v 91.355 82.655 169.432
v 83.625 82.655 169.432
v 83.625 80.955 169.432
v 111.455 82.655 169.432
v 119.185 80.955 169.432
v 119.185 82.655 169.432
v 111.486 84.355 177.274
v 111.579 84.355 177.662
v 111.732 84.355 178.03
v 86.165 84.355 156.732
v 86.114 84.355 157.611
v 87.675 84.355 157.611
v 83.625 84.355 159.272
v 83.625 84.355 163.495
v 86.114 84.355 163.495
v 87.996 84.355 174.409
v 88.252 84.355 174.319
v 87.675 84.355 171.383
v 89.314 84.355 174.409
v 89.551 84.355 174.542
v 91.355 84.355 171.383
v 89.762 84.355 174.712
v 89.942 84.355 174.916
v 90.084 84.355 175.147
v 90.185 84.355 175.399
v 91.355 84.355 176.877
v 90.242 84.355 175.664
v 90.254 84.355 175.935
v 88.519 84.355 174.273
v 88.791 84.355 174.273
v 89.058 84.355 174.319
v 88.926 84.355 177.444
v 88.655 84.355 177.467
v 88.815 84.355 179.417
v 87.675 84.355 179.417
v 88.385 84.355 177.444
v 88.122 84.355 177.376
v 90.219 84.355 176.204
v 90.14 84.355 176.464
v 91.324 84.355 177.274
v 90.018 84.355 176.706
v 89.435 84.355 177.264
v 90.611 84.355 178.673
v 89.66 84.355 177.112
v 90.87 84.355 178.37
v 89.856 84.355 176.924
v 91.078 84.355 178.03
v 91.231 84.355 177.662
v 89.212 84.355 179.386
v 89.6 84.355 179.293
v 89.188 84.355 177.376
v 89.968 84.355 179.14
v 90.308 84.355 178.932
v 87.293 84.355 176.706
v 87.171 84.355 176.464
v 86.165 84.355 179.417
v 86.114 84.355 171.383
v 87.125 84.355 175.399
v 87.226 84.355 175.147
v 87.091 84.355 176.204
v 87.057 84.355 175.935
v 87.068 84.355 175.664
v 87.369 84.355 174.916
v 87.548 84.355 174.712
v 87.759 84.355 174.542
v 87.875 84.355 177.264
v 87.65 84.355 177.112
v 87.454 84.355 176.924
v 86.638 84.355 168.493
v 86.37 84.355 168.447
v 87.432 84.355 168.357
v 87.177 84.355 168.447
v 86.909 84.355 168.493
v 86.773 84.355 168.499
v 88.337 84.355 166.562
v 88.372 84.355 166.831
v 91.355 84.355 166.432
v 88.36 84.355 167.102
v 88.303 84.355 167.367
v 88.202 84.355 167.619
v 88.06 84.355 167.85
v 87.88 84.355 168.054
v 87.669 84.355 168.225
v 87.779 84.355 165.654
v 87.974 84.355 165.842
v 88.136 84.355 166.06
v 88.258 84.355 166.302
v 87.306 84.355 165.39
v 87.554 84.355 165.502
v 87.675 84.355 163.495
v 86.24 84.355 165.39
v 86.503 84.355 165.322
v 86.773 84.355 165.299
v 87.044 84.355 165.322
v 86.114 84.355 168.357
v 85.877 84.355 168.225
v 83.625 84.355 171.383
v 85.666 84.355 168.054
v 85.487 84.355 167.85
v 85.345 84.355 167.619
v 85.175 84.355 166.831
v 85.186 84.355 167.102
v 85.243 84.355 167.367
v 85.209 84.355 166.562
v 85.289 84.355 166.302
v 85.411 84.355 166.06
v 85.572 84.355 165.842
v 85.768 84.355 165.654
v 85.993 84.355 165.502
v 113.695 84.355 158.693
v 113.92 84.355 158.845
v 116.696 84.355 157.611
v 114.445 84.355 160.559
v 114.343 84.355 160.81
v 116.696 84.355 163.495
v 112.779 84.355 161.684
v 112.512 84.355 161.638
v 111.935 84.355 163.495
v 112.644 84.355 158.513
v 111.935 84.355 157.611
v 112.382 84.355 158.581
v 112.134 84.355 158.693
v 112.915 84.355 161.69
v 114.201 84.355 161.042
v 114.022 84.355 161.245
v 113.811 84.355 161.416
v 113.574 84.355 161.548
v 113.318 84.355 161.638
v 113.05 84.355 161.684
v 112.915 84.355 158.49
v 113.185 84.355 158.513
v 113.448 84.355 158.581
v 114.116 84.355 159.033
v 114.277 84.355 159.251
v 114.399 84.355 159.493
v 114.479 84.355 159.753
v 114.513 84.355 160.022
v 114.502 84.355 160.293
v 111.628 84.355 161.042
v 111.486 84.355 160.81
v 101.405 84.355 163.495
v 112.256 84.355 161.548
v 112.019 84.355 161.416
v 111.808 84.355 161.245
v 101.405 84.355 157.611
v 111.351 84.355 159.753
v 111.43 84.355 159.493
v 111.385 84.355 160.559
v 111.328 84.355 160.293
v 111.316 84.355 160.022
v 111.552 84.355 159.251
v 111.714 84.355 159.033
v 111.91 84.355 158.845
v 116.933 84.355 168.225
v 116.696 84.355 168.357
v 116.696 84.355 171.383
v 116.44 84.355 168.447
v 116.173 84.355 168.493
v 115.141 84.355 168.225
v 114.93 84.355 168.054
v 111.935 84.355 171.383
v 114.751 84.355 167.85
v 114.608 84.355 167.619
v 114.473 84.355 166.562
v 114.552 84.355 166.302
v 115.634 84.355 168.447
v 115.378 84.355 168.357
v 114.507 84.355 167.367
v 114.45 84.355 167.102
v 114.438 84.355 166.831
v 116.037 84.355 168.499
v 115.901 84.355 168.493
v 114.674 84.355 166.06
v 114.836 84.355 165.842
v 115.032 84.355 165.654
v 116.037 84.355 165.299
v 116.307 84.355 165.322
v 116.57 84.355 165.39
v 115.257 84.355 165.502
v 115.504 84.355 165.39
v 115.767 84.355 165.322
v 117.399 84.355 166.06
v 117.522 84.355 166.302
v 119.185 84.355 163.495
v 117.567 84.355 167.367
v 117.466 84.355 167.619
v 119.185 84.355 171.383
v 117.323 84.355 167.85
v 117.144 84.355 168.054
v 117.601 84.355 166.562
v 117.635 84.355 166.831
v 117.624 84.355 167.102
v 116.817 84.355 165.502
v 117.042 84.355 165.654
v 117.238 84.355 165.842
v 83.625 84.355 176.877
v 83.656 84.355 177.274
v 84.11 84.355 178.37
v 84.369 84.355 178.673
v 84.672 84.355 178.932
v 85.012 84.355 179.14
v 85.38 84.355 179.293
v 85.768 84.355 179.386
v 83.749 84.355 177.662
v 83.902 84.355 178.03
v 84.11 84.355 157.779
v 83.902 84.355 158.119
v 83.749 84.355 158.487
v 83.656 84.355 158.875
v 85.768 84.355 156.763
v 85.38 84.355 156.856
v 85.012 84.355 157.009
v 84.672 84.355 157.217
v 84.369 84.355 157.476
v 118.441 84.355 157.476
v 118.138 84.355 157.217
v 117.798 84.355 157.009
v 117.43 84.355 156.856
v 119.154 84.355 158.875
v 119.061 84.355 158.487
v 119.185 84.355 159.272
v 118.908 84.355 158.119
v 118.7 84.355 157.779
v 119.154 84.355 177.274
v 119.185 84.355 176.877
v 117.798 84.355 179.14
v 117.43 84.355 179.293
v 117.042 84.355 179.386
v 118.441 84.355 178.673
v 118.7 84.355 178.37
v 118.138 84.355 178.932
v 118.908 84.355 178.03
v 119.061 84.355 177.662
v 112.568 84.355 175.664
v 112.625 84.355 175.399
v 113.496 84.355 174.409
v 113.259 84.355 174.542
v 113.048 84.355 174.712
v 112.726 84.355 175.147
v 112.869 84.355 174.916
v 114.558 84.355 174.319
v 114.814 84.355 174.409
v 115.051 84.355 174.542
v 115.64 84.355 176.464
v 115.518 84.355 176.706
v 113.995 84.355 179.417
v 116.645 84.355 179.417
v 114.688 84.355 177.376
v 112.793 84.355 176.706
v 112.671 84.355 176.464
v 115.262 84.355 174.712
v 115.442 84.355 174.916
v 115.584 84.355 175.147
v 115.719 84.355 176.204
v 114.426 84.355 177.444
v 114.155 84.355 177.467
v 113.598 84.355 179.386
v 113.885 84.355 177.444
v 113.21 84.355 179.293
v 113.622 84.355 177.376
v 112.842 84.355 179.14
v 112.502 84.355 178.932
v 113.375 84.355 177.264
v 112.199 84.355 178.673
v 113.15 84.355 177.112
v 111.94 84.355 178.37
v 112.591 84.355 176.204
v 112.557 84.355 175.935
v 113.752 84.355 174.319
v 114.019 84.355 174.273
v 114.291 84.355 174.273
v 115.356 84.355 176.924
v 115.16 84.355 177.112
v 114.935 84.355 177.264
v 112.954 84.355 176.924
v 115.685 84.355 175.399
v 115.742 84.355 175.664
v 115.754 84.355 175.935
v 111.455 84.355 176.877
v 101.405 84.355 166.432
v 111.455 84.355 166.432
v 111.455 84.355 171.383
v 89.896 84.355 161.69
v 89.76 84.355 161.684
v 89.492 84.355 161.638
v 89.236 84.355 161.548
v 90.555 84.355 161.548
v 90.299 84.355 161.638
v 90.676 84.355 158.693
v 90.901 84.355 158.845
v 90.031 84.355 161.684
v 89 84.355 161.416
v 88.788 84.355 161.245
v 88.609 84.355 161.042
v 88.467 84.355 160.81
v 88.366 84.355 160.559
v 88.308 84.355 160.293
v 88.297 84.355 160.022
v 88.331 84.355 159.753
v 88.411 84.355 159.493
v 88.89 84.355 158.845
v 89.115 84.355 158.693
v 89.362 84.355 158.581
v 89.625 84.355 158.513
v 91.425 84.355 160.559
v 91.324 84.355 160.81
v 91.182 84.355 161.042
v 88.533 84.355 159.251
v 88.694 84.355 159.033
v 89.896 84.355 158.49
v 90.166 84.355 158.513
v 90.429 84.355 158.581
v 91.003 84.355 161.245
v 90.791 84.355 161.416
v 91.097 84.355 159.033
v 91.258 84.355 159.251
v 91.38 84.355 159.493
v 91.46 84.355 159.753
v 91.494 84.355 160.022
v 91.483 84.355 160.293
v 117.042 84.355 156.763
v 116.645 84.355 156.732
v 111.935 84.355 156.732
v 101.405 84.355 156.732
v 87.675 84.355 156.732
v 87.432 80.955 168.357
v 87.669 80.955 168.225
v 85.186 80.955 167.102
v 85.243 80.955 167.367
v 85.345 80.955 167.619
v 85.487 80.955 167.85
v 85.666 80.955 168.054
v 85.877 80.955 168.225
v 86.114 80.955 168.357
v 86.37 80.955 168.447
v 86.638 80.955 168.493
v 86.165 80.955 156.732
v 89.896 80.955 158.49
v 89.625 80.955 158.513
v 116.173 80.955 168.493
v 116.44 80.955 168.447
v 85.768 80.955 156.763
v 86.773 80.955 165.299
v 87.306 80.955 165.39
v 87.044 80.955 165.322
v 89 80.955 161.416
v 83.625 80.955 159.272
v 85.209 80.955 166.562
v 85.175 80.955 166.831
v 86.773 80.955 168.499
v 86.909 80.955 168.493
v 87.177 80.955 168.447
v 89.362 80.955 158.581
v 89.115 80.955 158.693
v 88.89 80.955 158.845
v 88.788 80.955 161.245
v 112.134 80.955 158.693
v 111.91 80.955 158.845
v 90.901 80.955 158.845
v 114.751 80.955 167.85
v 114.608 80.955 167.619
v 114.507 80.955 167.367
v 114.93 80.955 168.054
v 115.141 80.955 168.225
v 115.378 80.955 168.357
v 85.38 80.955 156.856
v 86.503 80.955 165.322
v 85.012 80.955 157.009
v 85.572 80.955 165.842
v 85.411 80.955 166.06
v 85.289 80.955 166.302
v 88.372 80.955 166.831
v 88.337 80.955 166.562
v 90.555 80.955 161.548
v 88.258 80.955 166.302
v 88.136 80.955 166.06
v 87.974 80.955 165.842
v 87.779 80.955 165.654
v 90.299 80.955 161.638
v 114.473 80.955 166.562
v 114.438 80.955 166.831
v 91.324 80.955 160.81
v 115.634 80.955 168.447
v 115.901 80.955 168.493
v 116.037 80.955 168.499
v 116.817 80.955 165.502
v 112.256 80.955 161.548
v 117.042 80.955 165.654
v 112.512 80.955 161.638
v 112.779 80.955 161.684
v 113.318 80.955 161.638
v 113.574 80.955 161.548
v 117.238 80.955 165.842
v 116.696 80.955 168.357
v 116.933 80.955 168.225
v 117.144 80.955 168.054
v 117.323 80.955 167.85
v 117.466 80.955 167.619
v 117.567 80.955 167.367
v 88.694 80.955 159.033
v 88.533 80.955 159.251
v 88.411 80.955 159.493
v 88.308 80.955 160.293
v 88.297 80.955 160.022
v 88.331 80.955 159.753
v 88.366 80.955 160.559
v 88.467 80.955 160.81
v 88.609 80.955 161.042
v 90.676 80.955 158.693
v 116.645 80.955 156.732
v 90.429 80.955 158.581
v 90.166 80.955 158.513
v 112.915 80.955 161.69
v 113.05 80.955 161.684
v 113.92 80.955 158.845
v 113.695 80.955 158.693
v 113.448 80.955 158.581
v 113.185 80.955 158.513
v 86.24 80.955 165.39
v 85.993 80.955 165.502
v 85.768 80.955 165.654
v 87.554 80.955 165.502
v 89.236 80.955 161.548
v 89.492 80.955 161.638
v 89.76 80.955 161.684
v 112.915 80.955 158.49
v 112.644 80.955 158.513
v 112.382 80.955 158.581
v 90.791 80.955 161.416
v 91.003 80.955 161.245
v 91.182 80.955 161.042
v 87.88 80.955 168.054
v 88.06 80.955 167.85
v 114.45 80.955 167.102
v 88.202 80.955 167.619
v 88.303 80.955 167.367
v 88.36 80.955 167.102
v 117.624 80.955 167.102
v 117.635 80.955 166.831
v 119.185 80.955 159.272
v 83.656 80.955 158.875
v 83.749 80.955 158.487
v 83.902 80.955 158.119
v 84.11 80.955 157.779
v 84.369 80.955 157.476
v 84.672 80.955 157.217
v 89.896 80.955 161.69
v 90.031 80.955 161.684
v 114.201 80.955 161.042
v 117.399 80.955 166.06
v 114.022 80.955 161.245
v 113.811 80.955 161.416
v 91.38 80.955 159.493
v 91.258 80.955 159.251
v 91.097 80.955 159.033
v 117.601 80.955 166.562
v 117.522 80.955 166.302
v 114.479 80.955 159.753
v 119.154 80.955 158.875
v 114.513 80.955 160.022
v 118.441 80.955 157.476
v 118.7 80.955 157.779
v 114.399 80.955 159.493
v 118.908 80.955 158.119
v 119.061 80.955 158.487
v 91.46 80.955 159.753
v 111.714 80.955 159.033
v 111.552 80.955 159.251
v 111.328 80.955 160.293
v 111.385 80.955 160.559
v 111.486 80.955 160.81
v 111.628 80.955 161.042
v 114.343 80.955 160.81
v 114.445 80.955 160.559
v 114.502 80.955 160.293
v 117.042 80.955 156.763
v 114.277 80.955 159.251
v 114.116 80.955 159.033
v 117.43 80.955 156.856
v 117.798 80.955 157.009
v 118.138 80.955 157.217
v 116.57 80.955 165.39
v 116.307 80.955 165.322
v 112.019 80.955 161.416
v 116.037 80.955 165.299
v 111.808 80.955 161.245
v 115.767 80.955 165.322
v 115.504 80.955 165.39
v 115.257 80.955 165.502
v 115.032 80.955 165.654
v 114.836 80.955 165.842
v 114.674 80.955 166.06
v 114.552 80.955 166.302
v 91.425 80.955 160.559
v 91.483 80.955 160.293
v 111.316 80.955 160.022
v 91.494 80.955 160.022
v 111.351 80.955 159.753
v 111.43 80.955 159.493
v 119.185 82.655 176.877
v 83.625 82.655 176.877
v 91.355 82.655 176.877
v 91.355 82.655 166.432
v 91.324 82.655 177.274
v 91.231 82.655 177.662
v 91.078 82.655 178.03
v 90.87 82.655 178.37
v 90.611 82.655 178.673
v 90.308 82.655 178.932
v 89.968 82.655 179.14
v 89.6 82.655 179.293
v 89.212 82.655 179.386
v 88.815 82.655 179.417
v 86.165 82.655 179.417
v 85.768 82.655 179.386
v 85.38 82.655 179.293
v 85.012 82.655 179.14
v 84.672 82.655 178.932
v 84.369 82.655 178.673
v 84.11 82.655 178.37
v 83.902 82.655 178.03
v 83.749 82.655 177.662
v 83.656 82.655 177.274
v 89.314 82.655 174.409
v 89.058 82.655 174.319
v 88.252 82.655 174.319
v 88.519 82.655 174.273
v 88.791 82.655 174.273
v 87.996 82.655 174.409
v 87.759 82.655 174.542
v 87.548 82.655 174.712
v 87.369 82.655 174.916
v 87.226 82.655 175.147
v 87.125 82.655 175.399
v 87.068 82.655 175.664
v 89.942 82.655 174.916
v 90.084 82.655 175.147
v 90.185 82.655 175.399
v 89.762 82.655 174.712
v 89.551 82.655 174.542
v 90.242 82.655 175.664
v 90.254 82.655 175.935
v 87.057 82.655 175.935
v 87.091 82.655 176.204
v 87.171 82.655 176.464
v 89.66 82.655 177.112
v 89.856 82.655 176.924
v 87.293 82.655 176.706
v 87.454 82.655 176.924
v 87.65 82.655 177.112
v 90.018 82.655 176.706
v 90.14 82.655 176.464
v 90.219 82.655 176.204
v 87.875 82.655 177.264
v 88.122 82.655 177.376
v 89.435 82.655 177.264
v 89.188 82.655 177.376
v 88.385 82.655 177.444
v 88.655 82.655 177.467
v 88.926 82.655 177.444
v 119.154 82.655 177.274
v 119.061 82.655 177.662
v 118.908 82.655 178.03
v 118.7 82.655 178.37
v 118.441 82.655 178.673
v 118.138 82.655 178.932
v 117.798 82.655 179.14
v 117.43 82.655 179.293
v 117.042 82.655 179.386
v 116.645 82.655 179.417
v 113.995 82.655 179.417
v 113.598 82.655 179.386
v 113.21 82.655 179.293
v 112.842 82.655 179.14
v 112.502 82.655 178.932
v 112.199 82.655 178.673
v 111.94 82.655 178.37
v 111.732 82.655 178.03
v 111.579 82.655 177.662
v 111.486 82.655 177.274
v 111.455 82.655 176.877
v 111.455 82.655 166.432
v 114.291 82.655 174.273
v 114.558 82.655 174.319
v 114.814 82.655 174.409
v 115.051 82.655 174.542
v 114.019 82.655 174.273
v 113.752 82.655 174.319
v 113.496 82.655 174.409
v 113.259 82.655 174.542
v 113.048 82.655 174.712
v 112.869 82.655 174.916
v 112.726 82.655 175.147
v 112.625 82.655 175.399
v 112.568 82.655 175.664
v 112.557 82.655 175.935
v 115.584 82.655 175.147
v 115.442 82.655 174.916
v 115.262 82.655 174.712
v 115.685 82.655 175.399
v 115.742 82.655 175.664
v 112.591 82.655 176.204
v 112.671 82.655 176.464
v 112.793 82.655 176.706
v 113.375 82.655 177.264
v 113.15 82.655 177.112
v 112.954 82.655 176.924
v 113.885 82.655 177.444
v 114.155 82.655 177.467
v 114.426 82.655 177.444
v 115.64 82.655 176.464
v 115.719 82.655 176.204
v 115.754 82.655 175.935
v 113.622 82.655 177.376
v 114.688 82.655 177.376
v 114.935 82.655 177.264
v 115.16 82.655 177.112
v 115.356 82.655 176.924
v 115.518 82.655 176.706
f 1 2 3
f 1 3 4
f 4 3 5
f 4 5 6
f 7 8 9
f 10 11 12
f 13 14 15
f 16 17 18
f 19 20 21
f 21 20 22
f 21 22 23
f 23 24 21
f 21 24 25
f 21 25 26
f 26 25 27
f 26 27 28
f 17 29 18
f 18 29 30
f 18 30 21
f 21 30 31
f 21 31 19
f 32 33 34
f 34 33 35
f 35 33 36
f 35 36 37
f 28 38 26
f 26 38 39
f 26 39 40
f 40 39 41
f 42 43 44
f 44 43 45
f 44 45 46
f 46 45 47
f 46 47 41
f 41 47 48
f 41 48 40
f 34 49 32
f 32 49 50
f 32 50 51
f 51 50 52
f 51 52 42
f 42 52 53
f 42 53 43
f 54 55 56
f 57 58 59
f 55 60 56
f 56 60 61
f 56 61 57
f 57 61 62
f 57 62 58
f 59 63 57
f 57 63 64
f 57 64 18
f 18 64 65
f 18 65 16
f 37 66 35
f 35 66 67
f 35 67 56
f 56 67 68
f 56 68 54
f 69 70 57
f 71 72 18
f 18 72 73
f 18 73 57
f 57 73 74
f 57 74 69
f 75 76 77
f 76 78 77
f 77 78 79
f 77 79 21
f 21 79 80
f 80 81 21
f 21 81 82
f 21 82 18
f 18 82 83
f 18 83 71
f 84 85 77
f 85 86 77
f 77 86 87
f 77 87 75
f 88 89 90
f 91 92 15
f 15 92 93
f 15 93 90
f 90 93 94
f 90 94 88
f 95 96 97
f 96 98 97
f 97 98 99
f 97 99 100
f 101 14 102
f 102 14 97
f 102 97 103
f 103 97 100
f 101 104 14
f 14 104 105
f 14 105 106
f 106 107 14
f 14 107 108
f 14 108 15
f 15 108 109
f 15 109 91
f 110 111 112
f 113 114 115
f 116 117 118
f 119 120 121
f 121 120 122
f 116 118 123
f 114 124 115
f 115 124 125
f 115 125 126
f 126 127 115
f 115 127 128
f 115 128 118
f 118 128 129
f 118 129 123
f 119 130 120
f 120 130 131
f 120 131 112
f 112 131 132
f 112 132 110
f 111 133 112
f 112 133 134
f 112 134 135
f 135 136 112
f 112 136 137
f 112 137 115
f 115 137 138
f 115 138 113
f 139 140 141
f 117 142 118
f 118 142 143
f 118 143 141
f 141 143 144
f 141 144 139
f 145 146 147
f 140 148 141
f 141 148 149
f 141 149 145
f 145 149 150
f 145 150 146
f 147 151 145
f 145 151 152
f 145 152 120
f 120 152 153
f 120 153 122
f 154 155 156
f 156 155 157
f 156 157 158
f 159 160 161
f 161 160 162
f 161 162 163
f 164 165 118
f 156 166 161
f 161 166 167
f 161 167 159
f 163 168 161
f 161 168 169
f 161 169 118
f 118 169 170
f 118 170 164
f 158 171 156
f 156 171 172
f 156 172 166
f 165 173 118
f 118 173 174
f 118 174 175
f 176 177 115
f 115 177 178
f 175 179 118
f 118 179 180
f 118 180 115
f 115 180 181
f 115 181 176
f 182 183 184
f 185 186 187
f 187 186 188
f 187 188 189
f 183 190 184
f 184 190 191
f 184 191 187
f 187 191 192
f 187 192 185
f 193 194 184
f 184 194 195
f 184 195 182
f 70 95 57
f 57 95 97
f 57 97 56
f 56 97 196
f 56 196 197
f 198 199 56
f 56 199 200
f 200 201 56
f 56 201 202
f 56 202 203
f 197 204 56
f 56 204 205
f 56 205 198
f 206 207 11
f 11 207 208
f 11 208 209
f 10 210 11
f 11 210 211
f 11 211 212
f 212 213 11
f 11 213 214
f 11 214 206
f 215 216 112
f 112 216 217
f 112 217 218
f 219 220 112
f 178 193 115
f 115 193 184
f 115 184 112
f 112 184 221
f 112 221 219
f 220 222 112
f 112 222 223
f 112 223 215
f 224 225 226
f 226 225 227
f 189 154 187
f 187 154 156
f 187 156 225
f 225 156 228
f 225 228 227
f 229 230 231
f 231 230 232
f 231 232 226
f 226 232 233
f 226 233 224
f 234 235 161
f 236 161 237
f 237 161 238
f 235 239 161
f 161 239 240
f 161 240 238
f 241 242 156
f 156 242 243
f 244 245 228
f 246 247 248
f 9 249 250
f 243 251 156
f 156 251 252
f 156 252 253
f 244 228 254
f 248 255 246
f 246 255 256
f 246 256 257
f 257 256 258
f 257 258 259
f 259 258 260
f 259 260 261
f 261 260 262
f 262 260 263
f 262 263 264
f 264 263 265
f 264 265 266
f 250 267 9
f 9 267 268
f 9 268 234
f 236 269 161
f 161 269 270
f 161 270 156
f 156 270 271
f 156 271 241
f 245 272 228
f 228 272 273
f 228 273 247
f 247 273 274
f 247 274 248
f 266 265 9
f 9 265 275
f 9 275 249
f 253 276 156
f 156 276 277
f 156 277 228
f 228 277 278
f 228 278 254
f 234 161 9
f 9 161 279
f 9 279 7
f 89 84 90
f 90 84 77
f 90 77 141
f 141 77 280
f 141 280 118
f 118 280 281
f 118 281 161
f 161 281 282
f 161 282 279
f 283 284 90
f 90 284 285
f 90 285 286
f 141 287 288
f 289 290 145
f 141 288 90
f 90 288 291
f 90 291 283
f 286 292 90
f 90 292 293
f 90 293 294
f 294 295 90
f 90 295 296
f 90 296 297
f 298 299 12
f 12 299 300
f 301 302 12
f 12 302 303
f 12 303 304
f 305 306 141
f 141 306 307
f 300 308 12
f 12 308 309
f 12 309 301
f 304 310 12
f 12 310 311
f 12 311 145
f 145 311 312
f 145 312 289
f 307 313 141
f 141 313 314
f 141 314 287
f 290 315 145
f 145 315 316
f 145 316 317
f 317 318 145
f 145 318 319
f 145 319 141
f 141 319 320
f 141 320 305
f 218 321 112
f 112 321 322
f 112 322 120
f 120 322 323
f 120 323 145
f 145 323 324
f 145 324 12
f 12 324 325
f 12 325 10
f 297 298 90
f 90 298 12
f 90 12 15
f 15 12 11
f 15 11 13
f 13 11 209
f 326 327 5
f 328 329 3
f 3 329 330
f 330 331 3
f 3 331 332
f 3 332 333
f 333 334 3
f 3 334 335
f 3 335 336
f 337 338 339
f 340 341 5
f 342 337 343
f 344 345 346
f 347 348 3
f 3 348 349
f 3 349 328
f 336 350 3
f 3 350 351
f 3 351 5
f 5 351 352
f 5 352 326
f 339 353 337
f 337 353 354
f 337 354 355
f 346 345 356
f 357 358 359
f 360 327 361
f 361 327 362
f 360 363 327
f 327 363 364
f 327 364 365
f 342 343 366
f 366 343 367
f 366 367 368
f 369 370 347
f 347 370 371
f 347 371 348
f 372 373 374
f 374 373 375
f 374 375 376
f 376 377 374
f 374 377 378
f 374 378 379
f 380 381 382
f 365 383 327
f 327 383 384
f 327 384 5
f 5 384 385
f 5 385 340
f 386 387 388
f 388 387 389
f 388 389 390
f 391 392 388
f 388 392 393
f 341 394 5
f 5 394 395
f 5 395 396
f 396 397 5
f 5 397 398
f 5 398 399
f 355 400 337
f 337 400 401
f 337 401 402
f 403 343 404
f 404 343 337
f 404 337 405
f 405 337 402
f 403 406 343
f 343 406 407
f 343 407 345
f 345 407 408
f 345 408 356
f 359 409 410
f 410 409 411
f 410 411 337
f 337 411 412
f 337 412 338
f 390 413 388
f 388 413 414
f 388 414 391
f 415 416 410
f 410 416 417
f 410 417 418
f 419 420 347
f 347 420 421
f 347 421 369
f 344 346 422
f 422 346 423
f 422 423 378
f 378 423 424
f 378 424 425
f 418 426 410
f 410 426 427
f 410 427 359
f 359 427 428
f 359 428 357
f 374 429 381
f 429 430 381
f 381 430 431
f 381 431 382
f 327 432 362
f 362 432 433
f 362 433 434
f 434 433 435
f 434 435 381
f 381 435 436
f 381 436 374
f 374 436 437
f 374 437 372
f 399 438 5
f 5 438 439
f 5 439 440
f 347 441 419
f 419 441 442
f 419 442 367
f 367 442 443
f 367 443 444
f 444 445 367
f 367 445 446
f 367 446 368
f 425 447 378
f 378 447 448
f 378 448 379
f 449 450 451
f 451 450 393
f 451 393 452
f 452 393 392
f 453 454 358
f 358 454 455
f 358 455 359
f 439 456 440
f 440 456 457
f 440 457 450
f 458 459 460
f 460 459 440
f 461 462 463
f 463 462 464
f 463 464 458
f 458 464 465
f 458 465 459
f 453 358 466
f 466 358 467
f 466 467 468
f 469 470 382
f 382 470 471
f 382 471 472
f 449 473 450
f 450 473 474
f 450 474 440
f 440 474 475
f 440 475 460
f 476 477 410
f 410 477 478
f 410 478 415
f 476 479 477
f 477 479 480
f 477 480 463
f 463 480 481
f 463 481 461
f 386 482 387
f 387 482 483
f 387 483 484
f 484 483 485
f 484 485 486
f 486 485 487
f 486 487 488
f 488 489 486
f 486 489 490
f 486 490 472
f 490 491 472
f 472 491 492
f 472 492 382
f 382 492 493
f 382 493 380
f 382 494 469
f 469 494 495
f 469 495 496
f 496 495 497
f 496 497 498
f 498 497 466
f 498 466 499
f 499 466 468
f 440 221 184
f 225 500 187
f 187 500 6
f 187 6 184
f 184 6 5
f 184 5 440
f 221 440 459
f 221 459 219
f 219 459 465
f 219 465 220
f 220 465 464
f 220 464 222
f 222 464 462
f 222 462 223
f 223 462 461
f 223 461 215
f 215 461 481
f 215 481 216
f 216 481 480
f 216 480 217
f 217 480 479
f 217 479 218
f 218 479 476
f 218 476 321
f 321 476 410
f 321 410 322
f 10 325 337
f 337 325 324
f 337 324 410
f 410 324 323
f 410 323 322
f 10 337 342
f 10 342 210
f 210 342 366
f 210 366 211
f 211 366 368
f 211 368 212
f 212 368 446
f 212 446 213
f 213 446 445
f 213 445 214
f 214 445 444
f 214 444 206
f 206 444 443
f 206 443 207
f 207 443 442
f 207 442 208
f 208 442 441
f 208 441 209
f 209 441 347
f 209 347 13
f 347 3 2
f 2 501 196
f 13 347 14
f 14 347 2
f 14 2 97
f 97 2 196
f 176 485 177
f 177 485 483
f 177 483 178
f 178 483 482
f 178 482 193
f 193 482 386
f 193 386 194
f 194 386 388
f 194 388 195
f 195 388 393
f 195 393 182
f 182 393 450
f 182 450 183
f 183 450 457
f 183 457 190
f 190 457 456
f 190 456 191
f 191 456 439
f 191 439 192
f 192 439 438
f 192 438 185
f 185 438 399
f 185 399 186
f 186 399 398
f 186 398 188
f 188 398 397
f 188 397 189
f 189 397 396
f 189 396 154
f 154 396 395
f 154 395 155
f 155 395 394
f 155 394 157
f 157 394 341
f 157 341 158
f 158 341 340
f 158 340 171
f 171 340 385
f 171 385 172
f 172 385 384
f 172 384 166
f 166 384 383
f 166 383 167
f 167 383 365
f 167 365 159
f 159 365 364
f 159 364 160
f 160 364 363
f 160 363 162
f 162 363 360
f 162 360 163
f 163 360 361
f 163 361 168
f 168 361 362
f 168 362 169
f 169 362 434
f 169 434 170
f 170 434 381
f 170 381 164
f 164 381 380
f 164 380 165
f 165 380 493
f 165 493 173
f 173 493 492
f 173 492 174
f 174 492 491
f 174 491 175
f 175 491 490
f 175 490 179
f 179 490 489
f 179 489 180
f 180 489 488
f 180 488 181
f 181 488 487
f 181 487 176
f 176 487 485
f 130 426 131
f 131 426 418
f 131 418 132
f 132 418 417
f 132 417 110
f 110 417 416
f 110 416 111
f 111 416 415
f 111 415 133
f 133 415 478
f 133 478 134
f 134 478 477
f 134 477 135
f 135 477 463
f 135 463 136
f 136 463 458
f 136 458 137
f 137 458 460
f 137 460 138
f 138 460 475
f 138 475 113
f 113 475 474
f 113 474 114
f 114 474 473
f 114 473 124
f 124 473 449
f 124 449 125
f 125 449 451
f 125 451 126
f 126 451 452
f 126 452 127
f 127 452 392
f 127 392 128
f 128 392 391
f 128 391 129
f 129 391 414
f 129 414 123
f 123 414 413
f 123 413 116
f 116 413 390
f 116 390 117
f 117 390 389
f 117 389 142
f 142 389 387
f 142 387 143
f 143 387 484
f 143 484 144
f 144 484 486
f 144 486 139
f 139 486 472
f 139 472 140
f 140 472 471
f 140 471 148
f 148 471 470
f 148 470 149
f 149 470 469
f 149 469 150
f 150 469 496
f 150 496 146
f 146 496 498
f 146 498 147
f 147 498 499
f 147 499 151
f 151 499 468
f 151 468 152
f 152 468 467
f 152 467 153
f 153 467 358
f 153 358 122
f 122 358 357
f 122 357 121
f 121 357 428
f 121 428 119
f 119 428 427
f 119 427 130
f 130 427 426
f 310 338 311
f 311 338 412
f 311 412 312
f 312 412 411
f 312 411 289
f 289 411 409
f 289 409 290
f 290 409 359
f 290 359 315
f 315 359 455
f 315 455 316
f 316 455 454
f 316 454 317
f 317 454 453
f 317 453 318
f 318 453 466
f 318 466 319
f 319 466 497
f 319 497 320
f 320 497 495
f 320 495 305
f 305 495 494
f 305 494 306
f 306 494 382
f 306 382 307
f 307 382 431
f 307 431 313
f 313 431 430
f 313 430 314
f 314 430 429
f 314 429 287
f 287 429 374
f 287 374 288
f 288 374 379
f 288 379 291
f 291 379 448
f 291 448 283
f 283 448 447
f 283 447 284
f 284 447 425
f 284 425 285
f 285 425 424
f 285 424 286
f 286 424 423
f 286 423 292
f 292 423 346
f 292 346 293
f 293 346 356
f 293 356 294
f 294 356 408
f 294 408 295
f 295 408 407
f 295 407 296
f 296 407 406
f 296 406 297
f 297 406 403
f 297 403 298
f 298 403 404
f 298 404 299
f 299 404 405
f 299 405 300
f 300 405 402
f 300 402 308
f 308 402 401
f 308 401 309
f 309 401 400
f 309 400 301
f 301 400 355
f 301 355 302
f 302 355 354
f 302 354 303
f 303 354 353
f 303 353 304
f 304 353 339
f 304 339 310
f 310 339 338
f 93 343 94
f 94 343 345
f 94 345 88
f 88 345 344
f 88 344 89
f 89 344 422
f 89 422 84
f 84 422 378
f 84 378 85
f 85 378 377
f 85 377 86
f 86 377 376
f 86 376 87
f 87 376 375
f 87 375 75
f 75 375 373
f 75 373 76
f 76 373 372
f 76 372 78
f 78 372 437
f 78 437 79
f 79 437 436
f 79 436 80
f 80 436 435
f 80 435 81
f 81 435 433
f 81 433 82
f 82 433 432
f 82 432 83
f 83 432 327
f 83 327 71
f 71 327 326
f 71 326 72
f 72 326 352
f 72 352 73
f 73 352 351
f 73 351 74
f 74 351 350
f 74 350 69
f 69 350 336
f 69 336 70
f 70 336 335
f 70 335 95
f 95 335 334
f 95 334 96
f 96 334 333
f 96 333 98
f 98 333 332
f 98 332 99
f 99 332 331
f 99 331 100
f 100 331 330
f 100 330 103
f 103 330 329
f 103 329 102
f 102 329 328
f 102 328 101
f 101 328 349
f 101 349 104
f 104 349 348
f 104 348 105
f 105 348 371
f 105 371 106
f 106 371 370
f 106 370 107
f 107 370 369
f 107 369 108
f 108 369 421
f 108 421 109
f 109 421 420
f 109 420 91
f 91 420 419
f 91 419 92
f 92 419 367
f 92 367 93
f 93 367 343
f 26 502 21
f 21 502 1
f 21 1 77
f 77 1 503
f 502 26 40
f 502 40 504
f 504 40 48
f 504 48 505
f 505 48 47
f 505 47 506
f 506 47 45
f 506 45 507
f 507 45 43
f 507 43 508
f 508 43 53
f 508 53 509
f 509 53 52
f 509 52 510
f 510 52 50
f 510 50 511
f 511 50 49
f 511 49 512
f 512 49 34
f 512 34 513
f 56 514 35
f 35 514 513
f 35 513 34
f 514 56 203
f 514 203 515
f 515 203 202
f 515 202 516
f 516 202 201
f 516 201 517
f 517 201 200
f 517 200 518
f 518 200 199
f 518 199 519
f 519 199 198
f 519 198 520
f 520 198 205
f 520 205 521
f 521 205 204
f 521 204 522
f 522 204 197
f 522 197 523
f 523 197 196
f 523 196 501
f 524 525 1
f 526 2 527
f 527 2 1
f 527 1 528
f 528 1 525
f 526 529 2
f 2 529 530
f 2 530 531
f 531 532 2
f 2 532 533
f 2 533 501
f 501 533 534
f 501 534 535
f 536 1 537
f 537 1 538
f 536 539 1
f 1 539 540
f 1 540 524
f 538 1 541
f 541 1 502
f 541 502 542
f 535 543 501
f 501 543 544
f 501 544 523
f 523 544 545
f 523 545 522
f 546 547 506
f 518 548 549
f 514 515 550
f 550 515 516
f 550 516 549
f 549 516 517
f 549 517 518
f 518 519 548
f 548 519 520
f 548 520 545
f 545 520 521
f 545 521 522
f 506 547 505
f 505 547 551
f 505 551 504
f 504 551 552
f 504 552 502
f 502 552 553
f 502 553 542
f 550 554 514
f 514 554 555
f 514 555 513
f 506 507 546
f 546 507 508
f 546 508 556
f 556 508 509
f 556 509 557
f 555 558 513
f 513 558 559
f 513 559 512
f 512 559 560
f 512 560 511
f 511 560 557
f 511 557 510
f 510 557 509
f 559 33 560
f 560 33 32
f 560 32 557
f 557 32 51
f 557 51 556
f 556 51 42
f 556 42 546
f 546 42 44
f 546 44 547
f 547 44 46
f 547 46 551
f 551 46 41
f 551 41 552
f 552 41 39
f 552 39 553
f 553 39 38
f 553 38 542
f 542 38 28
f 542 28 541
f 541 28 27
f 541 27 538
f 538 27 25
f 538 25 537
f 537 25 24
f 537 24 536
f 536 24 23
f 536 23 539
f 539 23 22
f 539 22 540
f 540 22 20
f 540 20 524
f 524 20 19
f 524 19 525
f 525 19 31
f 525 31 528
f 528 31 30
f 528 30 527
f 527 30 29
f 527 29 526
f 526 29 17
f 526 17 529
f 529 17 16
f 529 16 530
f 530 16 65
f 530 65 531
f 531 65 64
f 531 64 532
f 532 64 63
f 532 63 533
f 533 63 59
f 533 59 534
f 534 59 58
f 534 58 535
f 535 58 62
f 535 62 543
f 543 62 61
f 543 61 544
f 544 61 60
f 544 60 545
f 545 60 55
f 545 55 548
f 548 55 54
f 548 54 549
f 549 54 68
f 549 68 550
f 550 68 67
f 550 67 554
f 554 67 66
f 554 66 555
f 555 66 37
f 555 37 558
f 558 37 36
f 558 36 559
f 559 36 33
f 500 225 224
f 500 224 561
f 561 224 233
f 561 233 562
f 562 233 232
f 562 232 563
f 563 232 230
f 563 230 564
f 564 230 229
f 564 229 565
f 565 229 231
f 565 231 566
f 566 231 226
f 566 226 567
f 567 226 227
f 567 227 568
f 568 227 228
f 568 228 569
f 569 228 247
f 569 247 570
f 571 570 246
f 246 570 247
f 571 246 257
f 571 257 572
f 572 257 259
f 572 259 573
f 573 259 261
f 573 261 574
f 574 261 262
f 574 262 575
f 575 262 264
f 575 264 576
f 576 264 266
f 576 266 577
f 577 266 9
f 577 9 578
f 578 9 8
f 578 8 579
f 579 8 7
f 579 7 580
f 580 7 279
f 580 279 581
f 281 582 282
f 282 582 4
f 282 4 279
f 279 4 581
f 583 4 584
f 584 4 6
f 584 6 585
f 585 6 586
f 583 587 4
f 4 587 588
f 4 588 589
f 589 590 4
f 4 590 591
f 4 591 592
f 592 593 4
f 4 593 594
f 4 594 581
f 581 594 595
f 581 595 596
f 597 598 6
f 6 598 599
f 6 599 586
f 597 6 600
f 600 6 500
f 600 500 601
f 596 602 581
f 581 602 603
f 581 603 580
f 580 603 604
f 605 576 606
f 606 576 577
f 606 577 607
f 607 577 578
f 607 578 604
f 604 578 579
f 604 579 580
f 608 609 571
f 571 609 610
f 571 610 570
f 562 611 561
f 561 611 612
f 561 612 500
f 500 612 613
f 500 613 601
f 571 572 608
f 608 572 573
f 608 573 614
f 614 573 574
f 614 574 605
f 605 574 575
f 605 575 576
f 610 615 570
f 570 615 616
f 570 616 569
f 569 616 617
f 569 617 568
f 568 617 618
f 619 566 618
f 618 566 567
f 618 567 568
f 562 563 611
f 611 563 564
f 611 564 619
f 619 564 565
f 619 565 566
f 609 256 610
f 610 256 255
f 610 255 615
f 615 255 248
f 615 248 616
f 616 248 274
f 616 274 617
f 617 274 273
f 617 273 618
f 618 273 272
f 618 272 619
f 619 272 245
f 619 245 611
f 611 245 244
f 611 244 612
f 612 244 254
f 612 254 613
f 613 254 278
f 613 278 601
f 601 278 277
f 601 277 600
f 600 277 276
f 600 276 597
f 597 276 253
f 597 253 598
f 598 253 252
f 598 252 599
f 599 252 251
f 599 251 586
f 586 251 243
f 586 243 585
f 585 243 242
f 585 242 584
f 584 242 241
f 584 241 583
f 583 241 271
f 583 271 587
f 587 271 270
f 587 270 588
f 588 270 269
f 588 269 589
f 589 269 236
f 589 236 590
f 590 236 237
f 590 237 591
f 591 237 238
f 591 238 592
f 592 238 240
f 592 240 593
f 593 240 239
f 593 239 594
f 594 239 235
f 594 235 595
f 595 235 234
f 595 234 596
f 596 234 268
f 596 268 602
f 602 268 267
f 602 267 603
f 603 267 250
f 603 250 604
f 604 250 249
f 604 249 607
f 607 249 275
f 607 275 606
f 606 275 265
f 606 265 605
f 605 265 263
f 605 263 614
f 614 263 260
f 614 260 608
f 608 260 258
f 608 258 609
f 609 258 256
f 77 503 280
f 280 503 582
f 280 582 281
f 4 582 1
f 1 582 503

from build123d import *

# Parameters (mm, degrees)
SKETCH1_R           = 1.6
BOSS_EXTRUDE1_DEPTH = 3.4
SKETCH2_R           = 1.6
BOSS_EXTRUDE2_DEPTH = 1.7
SKETCH3_W           = 20.1
SKETCH3_H           = 3
CUT_EXTRUDE1_DEPTH  = 1.7


with BuildPart() as part:
    # Sketch1 → Boss-Extrude1 (new body)
    with BuildSketch(Plane(origin=(0, 80.955025863, 0), x_dir=(1, 0, 0), z_dir=(0, 1, 0))):
        with BuildLine():
            Line((86.165130669, -156.732155685), (116.645130669, -156.732155685))
            ThreePointArc((116.645130669, -156.732155685), (118.441181893, -157.47610446), (119.185130669, -159.272155685))
            Line((119.185130669, -159.272155685), (119.185130669, -169.432155685))
            Line((119.185130669, -169.432155685), (83.625130669, -169.432155685))
            Line((83.625130669, -169.432155685), (83.625130669, -159.272155685))
            ThreePointArc((83.625130669, -159.272155685), (84.369079444, -157.47610446), (86.165130669, -156.732155685))
        make_face()
        with Locations(Location((116.03690482, -166.898975693, 0), (0, 0, 270))):
            Circle(SKETCH1_R, mode=Mode.SUBTRACT)
        with Locations(Location((112.914749612, -160.090079663, 0), (0, 0, 270))):
            Circle(SKETCH1_R, mode=Mode.SUBTRACT)
        with Locations(Location((89.895511725, -160.090079663, 0), (0, 0, 270))):
            Circle(SKETCH1_R, mode=Mode.SUBTRACT)
        with Locations(Location((86.773356517, -166.898975693, 0), (0, 0, 270))):
            Circle(SKETCH1_R, mode=Mode.SUBTRACT)
    extrude(amount=BOSS_EXTRUDE1_DEPTH)

    # Sketch2 → Boss-Extrude2 (add)
    # profile 1 of 2: a face of its own
    with BuildSketch(Plane(origin=(0, 84.355025863, 0), x_dir=(1, 0, 0), z_dir=(0, 1, 0))):
        with BuildLine():
            Line((83.625130669, -169.432155685), (91.355130669, -169.432155685))
            Line((91.355130669, -169.432155685), (91.355130669, -176.877155685))
            ThreePointArc((91.355130669, -176.877155685), (90.611181893, -178.673206909), (88.815130669, -179.417155685))
            Line((88.815130669, -179.417155685), (86.165130669, -179.417155685))
            ThreePointArc((86.165130669, -179.417155685), (84.369079444, -178.673206909), (83.625130669, -176.877155685))
            Line((83.625130669, -176.877155685), (83.625130669, -169.432155685))
        make_face()
        with Locations(Location((88.655130669, -175.867155685, 0), (0, 0, 270))):
            Circle(SKETCH2_R, mode=Mode.SUBTRACT)
    # profile 2 of 2: a face of its own
    with BuildSketch(Plane(origin=(0, 84.355025863, 0), x_dir=(1, 0, 0), z_dir=(0, 1, 0))):
        with BuildLine():
            Line((119.185130669, -169.432155685), (111.455130669, -169.432155685))
            Line((111.455130669, -169.432155685), (111.455130669, -176.877155685))
            ThreePointArc((111.455130669, -176.877155685), (112.199079444, -178.673206909), (113.995130669, -179.417155685))
            Line((113.995130669, -179.417155685), (116.645130669, -179.417155685))
            ThreePointArc((116.645130669, -179.417155685), (118.441181893, -178.673206909), (119.185130669, -176.877155685))
            Line((119.185130669, -176.877155685), (119.185130669, -169.432155685))
        make_face()
        with Locations(Location((114.155130669, -175.867155685, 0), (0, 0, 270))):
            Circle(SKETCH2_R, mode=Mode.SUBTRACT)
    extrude(amount=-BOSS_EXTRUDE2_DEPTH)

    # Sketch3 → Cut-Extrude1 (cut)
    with BuildSketch(Plane(origin=(0, 84.355025863, 0), x_dir=(1, 0, 0), z_dir=(0, 1, 0))):
        with Locations((101.405130669, -167.932155685)):
            Rectangle(SKETCH3_W, SKETCH3_H)
    extrude(amount=-CUT_EXTRUDE1_DEPTH, mode=Mode.SUBTRACT)


solid = part.part
